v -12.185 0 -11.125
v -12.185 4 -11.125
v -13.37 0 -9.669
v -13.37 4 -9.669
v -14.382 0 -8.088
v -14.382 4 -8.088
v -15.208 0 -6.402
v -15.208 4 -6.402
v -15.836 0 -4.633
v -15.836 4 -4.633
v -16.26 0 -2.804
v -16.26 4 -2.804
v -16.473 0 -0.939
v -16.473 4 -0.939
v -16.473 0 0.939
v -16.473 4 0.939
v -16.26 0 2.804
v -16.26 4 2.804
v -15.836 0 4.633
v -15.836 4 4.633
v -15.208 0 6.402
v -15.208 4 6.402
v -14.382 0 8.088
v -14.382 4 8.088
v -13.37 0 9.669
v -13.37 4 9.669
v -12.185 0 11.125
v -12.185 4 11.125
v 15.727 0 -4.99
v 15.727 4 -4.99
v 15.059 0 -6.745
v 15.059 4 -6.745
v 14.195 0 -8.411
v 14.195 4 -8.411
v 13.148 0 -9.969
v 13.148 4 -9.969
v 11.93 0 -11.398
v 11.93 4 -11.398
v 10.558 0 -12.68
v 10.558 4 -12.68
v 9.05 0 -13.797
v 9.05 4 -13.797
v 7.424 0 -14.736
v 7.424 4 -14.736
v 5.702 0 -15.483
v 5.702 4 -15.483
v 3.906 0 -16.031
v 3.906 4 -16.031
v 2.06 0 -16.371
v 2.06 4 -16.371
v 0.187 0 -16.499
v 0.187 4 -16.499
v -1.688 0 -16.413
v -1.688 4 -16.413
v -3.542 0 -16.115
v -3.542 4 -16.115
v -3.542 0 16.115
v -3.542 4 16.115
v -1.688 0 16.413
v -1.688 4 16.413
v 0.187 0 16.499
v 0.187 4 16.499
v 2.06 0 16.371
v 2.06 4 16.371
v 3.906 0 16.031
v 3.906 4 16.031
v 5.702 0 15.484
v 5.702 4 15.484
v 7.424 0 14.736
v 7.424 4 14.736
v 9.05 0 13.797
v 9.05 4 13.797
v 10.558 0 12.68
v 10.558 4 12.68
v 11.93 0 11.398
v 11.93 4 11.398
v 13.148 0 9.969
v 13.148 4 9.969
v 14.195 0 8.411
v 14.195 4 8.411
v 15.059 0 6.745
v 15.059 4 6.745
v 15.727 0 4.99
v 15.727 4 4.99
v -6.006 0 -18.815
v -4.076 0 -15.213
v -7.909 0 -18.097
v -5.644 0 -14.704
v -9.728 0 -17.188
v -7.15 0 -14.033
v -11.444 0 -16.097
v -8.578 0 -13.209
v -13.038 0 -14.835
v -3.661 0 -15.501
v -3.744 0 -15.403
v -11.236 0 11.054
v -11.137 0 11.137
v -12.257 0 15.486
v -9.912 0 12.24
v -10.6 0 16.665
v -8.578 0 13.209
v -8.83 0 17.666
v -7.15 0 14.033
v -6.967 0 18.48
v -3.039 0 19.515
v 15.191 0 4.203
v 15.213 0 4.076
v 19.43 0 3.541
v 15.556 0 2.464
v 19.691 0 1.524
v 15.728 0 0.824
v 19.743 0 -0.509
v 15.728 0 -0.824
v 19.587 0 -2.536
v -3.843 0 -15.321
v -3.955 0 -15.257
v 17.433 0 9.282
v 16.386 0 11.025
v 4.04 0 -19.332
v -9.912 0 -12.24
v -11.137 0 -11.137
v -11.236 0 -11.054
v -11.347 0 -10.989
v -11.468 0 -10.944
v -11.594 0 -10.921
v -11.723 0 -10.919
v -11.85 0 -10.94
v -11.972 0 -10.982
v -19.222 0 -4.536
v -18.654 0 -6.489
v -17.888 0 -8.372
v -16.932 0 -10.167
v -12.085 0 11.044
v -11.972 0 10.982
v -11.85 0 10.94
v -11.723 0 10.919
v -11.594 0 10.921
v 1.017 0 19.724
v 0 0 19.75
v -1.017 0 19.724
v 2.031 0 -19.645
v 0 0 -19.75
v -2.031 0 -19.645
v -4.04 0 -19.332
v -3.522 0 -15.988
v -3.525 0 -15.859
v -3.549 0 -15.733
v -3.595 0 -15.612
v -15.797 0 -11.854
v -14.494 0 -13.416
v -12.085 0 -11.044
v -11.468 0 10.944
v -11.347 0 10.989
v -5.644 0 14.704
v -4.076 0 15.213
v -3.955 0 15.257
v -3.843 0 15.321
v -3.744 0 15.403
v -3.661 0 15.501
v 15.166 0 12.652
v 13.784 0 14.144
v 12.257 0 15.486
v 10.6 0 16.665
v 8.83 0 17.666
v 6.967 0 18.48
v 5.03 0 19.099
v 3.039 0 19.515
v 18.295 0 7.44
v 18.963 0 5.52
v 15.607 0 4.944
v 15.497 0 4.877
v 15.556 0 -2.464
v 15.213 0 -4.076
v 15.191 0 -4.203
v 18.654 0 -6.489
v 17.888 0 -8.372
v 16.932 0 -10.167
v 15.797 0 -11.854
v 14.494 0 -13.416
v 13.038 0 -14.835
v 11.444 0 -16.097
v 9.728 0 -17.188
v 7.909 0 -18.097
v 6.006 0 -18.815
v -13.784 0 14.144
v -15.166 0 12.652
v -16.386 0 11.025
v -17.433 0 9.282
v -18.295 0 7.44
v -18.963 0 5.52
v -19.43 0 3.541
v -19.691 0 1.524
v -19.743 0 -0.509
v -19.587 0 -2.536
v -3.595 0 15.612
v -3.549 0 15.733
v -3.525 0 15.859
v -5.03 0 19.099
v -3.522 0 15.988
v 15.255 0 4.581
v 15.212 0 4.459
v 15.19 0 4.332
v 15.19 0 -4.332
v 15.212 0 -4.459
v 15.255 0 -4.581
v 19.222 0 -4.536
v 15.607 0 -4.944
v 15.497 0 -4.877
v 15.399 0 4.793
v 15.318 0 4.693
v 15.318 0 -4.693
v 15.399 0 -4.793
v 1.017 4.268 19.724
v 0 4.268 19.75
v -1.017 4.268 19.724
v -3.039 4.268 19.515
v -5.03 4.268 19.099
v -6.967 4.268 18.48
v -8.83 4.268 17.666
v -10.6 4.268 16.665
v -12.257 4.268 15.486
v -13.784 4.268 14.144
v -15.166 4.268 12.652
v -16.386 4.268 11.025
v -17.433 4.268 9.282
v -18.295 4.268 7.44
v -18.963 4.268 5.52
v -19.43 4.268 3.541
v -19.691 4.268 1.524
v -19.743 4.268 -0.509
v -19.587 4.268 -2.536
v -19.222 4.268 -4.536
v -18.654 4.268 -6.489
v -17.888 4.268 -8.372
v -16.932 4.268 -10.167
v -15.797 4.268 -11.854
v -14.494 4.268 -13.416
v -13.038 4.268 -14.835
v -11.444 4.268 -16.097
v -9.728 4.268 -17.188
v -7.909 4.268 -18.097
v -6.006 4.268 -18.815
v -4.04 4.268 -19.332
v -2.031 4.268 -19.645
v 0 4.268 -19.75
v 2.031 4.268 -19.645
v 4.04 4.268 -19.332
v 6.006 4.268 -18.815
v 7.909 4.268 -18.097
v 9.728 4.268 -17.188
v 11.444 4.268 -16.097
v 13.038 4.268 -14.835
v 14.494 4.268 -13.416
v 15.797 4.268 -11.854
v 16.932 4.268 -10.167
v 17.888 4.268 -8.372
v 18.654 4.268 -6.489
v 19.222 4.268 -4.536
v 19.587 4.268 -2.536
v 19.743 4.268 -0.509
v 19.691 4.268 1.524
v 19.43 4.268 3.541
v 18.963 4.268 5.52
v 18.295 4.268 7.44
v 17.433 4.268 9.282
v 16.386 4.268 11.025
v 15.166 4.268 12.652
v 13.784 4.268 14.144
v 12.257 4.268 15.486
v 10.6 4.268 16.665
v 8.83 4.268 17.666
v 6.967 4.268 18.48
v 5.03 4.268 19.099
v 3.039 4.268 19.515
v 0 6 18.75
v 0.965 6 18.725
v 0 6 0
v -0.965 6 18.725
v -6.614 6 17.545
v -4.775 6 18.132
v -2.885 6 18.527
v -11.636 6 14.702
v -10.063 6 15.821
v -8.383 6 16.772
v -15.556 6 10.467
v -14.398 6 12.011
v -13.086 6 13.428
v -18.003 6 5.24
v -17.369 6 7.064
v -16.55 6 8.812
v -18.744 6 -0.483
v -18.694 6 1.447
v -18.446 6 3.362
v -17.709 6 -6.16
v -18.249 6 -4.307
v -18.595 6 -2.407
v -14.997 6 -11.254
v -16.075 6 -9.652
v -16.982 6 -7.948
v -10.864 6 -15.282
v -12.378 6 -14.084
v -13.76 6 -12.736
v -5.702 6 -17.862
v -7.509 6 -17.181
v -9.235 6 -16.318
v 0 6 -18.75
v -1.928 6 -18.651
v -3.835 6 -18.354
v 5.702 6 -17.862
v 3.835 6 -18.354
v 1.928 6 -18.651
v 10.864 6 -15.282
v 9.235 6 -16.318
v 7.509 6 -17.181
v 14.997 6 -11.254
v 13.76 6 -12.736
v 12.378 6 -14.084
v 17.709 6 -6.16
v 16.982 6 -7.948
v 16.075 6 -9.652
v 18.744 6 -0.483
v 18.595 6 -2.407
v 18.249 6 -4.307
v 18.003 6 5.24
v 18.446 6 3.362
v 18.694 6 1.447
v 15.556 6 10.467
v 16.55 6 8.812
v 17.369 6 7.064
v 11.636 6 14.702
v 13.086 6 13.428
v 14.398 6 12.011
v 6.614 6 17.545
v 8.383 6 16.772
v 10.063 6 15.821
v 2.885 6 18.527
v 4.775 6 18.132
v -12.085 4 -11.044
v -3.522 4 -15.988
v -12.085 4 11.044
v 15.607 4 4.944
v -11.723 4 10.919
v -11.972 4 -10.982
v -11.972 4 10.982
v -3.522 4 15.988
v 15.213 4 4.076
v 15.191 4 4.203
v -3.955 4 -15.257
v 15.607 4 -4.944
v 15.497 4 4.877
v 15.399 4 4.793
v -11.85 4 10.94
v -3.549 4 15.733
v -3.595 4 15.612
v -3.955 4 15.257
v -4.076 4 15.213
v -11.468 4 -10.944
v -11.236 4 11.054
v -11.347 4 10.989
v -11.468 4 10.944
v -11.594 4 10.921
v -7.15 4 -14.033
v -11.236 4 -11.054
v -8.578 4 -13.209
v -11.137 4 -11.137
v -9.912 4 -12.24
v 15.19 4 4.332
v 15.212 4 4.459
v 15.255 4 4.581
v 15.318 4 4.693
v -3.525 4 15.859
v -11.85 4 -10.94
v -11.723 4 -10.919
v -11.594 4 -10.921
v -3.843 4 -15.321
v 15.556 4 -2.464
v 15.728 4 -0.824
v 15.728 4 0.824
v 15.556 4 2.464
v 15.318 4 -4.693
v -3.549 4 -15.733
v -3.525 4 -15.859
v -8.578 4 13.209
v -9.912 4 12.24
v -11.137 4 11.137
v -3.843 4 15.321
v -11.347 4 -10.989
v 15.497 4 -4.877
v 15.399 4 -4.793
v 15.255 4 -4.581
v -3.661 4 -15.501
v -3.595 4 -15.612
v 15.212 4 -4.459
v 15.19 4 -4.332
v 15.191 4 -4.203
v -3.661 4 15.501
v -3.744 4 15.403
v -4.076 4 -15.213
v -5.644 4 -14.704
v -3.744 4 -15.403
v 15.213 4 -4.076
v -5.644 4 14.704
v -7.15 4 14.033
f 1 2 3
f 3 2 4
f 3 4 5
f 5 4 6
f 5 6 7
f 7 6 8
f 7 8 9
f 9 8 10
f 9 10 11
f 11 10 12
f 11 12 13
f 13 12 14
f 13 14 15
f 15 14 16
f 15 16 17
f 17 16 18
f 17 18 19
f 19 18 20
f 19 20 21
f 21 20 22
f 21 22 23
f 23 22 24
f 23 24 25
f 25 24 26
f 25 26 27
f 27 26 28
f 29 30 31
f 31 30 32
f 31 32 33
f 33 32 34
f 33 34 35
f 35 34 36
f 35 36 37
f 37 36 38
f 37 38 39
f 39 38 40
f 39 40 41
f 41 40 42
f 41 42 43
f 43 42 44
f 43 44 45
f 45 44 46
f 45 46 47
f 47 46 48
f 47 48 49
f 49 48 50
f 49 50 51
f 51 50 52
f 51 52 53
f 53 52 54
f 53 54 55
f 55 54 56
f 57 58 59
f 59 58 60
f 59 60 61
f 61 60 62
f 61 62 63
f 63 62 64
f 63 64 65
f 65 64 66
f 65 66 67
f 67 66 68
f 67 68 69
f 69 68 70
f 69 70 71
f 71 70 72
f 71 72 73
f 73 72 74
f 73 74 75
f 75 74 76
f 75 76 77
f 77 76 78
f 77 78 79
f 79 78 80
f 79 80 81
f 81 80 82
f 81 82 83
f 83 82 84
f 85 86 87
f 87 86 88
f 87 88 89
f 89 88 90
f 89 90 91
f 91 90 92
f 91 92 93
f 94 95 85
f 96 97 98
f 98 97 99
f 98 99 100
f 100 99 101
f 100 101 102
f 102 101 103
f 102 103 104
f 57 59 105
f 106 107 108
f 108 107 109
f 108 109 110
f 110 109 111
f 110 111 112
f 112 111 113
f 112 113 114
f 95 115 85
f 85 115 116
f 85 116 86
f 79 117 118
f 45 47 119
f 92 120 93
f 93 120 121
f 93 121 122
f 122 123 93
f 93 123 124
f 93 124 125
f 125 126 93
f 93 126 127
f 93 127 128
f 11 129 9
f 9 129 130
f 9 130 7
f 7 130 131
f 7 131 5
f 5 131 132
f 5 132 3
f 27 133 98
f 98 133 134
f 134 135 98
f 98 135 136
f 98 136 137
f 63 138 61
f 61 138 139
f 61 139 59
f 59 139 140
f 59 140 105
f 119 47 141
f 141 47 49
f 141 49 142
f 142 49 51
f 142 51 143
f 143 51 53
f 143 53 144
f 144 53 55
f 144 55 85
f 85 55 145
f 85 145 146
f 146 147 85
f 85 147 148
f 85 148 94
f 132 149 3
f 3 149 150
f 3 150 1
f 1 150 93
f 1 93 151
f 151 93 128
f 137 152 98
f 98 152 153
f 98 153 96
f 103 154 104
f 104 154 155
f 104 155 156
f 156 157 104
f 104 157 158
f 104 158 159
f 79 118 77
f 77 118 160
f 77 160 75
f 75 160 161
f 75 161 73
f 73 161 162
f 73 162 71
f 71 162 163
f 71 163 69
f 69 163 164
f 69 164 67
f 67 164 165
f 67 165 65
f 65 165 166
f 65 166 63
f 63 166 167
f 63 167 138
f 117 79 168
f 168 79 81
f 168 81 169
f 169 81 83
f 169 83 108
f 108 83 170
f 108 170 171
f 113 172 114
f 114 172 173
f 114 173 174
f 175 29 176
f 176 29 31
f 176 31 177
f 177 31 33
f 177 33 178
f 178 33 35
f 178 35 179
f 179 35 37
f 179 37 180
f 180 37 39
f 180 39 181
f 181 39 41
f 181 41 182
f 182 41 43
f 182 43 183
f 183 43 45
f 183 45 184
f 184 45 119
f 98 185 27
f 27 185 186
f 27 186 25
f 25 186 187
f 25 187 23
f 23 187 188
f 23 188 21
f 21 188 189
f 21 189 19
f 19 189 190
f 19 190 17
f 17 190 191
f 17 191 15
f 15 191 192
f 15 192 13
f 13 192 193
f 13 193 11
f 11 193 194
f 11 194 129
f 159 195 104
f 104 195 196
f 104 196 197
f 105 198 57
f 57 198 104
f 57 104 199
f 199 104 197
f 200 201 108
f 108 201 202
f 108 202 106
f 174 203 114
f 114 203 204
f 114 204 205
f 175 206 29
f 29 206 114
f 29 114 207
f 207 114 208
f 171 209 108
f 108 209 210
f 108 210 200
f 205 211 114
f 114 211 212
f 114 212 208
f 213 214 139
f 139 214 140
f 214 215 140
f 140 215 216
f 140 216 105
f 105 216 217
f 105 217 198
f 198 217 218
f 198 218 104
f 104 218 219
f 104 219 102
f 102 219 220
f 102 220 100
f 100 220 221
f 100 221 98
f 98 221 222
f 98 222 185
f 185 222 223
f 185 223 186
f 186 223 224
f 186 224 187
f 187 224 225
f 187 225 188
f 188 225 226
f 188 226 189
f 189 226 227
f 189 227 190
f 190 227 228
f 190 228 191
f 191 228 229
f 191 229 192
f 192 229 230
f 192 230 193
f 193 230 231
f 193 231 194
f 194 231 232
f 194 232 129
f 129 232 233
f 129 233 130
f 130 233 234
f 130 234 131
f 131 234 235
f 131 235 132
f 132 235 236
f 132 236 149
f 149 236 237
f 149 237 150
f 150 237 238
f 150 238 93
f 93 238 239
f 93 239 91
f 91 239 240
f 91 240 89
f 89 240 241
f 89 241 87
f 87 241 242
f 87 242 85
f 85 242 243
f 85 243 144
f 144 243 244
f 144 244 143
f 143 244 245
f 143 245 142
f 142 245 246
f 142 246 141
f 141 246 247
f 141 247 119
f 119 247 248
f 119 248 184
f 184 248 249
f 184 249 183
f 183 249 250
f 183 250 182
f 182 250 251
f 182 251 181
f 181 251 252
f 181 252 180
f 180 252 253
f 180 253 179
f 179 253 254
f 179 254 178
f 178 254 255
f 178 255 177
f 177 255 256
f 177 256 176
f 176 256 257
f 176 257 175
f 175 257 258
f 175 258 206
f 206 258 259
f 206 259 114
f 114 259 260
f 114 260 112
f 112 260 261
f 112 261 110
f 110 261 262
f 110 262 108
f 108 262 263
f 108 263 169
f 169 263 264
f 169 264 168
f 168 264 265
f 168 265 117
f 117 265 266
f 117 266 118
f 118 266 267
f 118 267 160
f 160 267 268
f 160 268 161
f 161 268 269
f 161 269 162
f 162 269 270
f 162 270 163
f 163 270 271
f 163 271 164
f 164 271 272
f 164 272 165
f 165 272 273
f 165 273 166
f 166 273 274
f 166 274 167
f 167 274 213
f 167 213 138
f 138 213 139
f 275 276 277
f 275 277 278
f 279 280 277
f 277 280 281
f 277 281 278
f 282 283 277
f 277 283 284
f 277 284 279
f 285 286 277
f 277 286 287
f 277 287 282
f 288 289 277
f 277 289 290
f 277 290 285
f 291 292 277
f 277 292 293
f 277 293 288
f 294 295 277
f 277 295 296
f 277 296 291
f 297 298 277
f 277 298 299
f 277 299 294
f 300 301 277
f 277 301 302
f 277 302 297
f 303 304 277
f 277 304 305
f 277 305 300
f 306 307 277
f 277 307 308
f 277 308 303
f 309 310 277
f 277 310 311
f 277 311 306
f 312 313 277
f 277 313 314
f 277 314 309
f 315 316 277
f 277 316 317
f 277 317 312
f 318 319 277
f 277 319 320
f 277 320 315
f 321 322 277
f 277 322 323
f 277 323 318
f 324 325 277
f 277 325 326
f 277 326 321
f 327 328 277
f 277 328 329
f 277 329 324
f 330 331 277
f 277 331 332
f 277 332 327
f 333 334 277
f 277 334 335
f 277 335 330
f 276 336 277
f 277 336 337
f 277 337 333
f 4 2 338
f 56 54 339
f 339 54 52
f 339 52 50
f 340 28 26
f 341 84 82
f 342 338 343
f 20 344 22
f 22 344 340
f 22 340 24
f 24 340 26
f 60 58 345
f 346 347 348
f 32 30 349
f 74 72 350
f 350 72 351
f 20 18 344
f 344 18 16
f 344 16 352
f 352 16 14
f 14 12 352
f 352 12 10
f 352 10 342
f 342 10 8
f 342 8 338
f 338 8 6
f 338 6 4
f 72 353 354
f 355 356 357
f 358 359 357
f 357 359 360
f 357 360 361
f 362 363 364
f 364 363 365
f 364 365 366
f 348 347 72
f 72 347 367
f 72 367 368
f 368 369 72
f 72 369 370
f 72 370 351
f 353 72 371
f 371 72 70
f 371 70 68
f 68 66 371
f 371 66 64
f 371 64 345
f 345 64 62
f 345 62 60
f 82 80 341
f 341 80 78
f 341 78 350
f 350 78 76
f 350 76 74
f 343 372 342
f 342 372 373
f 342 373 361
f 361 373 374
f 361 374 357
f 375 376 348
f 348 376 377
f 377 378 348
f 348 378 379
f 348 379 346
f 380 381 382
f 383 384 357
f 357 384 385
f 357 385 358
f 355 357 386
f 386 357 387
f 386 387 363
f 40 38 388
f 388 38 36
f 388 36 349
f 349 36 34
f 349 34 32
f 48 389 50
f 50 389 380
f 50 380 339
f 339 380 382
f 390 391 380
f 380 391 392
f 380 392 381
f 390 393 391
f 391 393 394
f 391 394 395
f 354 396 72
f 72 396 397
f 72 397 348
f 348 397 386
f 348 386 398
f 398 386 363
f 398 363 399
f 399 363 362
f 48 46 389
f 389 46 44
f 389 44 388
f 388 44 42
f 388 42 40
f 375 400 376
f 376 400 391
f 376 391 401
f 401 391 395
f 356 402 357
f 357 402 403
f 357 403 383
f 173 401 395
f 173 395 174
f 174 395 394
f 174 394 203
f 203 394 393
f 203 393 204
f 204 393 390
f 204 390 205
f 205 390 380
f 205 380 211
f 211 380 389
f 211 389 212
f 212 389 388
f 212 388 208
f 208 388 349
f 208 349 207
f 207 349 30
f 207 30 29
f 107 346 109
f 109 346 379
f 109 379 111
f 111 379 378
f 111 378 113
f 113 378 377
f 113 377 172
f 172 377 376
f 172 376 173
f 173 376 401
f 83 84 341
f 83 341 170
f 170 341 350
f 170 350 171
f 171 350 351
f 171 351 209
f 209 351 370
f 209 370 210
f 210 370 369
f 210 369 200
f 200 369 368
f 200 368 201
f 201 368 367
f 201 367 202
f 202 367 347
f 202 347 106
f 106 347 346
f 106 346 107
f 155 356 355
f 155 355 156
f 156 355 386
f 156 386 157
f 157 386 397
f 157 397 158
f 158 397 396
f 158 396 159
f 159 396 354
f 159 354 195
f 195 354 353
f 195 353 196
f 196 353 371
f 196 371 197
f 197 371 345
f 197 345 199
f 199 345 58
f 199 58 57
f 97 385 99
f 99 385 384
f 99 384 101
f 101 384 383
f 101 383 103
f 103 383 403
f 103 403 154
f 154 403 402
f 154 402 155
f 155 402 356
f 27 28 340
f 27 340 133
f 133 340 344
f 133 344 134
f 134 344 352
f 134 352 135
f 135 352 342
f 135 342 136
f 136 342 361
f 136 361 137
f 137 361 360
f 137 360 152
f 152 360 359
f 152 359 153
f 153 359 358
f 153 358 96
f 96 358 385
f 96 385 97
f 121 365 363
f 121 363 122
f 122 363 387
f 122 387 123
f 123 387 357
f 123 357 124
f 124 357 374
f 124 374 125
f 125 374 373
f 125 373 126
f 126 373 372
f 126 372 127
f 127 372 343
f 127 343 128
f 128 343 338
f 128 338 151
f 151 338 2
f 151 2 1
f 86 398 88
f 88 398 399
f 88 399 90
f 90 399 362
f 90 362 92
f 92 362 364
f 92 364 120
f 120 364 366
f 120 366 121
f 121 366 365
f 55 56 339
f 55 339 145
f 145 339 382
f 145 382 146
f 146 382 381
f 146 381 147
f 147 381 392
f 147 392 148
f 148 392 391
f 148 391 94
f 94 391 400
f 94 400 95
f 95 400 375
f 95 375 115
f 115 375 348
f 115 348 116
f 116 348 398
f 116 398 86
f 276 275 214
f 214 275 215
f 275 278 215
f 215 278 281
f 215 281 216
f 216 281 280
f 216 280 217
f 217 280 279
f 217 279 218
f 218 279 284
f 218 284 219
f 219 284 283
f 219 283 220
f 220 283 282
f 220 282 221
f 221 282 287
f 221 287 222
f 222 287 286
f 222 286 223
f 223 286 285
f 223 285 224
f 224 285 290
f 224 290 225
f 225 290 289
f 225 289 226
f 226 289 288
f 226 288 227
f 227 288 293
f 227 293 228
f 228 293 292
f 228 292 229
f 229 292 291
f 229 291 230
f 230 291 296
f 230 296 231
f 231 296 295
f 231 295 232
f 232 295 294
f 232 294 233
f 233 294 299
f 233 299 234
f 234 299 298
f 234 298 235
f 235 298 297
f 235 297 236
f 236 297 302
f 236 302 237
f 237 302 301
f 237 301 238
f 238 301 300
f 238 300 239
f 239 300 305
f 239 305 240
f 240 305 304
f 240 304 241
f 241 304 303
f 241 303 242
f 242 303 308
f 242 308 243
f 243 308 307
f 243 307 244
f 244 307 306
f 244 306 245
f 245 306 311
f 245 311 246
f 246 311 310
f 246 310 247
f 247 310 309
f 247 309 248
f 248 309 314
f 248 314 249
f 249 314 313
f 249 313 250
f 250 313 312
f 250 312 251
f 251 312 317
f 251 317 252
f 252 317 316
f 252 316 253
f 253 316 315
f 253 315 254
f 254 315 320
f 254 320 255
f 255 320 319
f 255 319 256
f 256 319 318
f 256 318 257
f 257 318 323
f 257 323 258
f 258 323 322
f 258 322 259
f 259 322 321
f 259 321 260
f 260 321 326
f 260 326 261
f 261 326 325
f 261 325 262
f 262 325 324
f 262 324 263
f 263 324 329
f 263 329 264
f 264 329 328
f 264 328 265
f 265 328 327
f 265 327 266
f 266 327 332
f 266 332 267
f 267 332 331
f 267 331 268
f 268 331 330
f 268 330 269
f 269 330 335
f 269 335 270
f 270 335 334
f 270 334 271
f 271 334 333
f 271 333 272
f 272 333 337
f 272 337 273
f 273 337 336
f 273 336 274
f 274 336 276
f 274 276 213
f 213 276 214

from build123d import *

# Parameters (mm, degrees)
SKETCH_1_R               = 19.75
SKETCH_1_R_2             = 15.75
EXTRUDE_1_DEPTH          = 4
SKETCH_2_R               = 19.75
EXTRUDE_2_DEPTH          = 2
SKETCH_3_R               = 16.5
CUT_EXTRUDE_1_DEPTH      = 4
EXTRUDE_3_DEPTH          = 4
PATTERN_CIRCULAR_1_COUNT = 3
CHAMFER_1_SIZE           = 1
CHAMFER_1_SIZE2          = 1.732050808


with BuildPart() as part:
    # 草图1 → 凸台-拉伸1 (new body)
    with BuildSketch(Plane(origin=(0, 0, 0), x_dir=(1, 0, 0), z_dir=(0, 1, 0))):
        with Locations(Location((0, 0, 0), (0, 0, 270))):
            Circle(SKETCH_1_R)
        with Locations(Location((0, 0, 0), (0, 0, 270))):
            Circle(SKETCH_1_R_2, mode=Mode.SUBTRACT)
    extrude(amount=EXTRUDE_1_DEPTH)

    # 草图2 → 凸台-拉伸2 (add)
    with BuildSketch(Plane(origin=(0, 4, 0), x_dir=(1, 0, 0), z_dir=(0, 1, 0))):
        with Locations(Location((0, 0, 0), (0, 0, 270))):
            Circle(SKETCH_2_R)
    extrude(amount=EXTRUDE_2_DEPTH)

    # 草图3 → 切除-拉伸1 (cut)
    with BuildSketch(Plane.XZ.offset(-4)):
        with Locations(Location((0, 0, 0), (0, 0, 90))):
            Circle(SKETCH_3_R)
    extrude(amount=CUT_EXTRUDE_1_DEPTH, mode=Mode.SUBTRACT)

    # 草图4 → 凸台-拉伸3 (add)
    with BuildSketch(Plane.XZ.offset(-4)):
        with BuildLine():
            ThreePointArc((15.727247344, -4.990359803), (15.284037386, -4.638108653), (15.213331764, -4.07639996))
            ThreePointArc((15.213331764, -4.07639996), (15.75, 0), (15.213331764, 4.07639996))
            ThreePointArc((15.213331764, 4.07639996), (15.284037386, 4.638108653), (15.727247344, 4.990359803))
            ThreePointArc((15.727247344, 4.990359803), (16.5, 0), (15.727247344, -4.990359803))
        make_face()
    extrude_3 = extrude(amount=EXTRUDE_3_DEPTH)

    # 阵列(圆周)1: 凸台-拉伸3 ×3 about axis
    pattern_circular_1_axis = Axis((0, 0, 0), (0, 1, 0))
    for i in range(1, PATTERN_CIRCULAR_1_COUNT):
        add(extrude_3.rotate(pattern_circular_1_axis, i * 360 / PATTERN_CIRCULAR_1_COUNT))

    # 倒角1
    chamfer_1_edges = [part.edges().sort_by_distance(p)[0] for p in [
        (0, 6, -19.75),
    ]]
    chamfer_1_side = [part.faces().sort_by_distance(p)[0] for p in [
        (0, 6, 0),
    ]]
    chamfer(chamfer_1_edges, length=CHAMFER_1_SIZE, length2=CHAMFER_1_SIZE2, reference=chamfer_1_side[0])


solid = part.part
